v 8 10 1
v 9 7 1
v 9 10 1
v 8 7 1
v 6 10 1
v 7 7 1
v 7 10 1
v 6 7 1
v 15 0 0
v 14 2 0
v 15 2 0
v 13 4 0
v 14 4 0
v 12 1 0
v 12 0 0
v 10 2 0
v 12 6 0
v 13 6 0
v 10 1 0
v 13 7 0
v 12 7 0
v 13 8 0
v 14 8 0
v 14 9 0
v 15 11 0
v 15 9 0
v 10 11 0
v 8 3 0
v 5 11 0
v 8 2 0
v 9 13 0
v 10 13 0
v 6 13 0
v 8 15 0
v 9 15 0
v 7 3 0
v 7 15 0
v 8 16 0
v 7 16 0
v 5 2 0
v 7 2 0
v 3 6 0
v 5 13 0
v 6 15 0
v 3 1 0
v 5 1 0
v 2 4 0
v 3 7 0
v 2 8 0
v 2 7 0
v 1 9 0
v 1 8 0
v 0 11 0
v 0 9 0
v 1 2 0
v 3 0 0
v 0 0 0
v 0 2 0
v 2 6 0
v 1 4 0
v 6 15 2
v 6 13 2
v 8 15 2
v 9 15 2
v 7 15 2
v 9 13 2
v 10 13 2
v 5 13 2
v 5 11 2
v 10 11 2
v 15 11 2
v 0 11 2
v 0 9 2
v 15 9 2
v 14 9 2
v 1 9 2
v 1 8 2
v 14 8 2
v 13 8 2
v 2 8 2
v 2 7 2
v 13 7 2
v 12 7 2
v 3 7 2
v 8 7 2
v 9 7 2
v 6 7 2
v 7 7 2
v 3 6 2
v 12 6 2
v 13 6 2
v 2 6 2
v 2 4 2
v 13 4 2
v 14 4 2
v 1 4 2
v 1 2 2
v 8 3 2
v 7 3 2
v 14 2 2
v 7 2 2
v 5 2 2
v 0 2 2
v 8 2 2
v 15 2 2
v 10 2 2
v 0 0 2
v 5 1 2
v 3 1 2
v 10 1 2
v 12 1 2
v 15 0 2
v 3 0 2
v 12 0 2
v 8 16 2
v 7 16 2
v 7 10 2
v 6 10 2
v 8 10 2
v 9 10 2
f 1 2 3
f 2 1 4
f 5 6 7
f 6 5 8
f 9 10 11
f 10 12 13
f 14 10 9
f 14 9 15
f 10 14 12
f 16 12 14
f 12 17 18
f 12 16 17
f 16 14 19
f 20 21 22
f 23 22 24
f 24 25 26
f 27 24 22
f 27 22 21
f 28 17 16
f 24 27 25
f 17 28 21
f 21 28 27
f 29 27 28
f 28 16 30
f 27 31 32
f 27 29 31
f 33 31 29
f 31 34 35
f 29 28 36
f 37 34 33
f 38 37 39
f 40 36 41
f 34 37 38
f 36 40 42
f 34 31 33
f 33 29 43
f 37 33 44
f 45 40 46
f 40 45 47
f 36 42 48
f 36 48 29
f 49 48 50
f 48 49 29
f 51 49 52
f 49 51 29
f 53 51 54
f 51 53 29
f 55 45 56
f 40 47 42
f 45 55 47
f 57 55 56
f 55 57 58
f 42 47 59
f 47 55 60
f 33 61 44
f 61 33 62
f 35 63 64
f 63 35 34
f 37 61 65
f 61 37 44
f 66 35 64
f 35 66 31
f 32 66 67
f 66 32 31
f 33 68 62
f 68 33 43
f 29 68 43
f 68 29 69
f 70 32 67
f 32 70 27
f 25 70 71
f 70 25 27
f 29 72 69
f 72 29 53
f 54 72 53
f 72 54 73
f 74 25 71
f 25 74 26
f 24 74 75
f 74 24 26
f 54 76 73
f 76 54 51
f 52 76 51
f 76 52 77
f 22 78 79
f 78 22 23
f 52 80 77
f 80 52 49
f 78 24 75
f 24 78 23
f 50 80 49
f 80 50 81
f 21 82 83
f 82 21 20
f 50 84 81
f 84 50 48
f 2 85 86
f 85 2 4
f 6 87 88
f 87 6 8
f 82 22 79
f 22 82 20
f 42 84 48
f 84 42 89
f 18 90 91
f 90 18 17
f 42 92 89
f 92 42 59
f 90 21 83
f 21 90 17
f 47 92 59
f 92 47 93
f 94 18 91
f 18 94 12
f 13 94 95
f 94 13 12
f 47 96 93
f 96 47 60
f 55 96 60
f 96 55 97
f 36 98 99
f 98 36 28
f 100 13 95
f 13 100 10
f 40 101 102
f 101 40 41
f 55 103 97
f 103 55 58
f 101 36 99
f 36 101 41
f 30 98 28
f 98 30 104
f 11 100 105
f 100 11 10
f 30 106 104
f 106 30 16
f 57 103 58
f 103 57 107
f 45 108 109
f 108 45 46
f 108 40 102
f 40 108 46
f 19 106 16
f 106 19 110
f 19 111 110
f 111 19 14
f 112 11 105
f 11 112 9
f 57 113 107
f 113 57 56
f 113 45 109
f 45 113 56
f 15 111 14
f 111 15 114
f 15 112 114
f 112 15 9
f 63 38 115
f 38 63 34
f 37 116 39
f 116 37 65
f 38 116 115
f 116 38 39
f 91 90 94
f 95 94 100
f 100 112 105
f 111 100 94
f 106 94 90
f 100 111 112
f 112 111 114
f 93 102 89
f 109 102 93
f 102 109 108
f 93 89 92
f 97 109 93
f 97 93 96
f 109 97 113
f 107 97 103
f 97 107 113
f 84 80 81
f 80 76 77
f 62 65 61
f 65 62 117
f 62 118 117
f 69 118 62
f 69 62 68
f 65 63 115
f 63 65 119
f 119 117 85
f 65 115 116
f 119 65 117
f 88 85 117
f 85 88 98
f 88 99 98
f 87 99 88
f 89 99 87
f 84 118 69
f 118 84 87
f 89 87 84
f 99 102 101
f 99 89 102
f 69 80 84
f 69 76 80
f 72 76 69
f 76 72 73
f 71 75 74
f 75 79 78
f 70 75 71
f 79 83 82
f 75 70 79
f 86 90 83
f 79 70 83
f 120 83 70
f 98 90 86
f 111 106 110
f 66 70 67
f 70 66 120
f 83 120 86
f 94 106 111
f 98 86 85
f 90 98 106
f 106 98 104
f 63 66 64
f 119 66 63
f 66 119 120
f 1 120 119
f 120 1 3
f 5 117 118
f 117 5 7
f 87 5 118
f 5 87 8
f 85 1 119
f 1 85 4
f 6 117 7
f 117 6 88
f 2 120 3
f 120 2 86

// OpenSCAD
/*
 * 3D Pixel Art - Starman 3
 * Copyright (c) 2019 Anar Software LLC. < http://anars.com >
 *
 * This program is free software: you can redistribute it and/or modify it under
 * the terms of the GNU General Public License as published by the Free Software
 * Foundation, either version 3 of the License, or (at your option) any later
 * version.
 *
 * This program is distributed in the hope that it will be useful, but WITHOUT
 * ANY WARRANTY; without even the implied warranty of MERCHANTABILITY or FITNESS
 * FOR A PARTICULAR PURPOSE. See the GNU General Public License for more details.
 *
 * You should have received a copy of the GNU General Public License along with
 * this program. If not, see < http://www.gnu.org/licenses/ >
 *
 */

/* [Global] */

/* [Pixel Settings] */

// Pixel Length (X)
pixel_length = 1;

// Pixel Width (Y)
pixel_width = 1;

// Pixel Height (Z)
pixel_height = 1;

/* [Hidden] */

data=[[
     "       X",
     "      XXX",
     "      XXX",
     "     XXXXX",
     "     XXXXX",
     "XXXXXXXXXXXXXXX",
     "XXXXXXXXXXXXXXX",
     " XXXXXXXXXXXXX",
     "  XXXXXXXXXXX",
     "   XXXXXXXXX",
     "  XXXXXXXXXXX",
     "  XXXXXXXXXXX",
     " XXXXXXXXXXXXX",
     " XXXXXX XXXXXX",
     "XXXXX     XXXXX",
     "XXX         XXX"
     ],[
     "       X",
     "      XXX",
     "      XXX",
     "     XXXXX",
     "     XXXXX",
     "XXXXXXXXXXXXXXX",
     "XXXXXX X XXXXXX",
     " XXXXX X XXXXX",
     "  XXXX X XXXX",
     "   XXXXXXXXX",
     "  XXXXXXXXXXX",
     "  XXXXXXXXXXX",
     " XXXXXXXXXXXXX",
     " XXXXXX XXXXXX",
     "XXXXX     XXXXX",
     "XXX         XXX"]];

for (z = [0 : len(data) - 1])
    for (y = [0 : len(data[z]) - 1])
        if (len(data[z][y]) > 0)
            for (x = [0 : len(data[z][y]) - 1])
                if (data[z][y][x] == "X")
                    translate([x * pixel_length, (len(data[z]) - 1 - y) * pixel_width, z * pixel_height])
                        cube([pixel_length, pixel_width, pixel_height]);
